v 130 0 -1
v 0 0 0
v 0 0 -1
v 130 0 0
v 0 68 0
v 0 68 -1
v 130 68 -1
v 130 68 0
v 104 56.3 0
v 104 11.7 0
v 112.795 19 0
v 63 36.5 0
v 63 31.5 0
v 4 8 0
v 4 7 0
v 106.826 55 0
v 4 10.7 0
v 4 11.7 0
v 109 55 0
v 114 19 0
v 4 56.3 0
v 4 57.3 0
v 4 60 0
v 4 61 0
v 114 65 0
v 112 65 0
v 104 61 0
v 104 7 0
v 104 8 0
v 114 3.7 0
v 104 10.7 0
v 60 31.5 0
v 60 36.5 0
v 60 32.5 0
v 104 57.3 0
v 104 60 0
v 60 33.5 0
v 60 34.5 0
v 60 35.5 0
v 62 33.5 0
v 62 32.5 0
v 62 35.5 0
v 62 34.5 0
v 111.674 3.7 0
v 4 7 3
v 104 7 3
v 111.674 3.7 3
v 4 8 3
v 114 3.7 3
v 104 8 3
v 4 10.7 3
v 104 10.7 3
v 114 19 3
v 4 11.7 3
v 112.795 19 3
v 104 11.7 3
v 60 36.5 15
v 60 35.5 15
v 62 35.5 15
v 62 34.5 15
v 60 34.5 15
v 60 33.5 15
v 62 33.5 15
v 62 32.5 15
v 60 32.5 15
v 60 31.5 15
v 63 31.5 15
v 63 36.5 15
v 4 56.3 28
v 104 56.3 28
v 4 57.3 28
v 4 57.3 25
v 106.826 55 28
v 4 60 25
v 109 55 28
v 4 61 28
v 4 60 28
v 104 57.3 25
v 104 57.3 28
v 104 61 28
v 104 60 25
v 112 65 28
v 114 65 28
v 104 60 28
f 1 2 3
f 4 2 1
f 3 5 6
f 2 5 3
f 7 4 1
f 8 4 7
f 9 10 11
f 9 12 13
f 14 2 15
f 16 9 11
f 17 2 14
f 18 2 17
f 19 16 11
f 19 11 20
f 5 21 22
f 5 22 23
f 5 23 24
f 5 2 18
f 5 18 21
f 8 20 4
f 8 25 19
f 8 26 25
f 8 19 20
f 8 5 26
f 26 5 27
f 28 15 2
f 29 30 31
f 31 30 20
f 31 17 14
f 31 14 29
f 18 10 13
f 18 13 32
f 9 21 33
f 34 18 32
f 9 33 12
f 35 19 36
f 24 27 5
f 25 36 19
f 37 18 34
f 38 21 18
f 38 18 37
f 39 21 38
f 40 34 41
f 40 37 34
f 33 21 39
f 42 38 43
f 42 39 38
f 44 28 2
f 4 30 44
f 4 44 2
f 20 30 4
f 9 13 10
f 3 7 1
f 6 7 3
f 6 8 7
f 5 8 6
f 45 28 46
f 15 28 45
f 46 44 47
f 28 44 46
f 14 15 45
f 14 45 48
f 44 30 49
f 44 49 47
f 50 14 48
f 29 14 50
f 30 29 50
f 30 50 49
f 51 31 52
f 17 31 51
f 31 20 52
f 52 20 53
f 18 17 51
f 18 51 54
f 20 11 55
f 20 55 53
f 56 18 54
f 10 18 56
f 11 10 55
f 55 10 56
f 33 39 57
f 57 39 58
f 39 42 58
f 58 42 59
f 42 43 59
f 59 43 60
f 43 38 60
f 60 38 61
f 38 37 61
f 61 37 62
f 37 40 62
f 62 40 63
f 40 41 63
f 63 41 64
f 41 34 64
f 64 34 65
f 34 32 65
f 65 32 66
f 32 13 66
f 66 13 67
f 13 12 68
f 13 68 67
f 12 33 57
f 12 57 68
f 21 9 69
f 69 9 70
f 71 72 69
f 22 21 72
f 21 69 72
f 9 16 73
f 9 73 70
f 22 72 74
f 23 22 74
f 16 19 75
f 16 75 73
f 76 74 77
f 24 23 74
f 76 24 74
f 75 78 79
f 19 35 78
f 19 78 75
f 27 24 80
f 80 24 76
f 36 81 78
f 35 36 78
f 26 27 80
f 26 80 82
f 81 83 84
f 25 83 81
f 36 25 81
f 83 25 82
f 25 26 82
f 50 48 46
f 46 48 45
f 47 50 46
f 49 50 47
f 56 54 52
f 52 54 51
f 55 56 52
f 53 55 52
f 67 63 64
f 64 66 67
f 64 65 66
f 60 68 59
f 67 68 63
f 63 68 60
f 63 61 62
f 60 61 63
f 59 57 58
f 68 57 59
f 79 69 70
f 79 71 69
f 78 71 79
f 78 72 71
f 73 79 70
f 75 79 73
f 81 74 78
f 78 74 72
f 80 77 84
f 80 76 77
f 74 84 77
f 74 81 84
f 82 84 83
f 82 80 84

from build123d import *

# Parameters (mm, degrees)
SKETCH_W     = 130
SKETCH_H     = 68
PAD_DEPTH    = 1
SKETCH001_W  = 100
SKETCH001_H  = 1
PAD001_DEPTH = 28
SKETCH002_W  = 100
SKETCH002_H  = 1
PAD002_DEPTH = 28
PAD003_DEPTH = 28
SKETCH004_W  = 100
SKETCH004_H  = 2.7
PAD004_DEPTH = 25
SKETCH005_W  = 100
SKETCH005_H  = 1
PAD005_DEPTH = 3
SKETCH006_W  = 100
SKETCH006_H  = 1
PAD006_DEPTH = 3
PAD007_DEPTH = 3
PAD008_DEPTH = 15


with BuildPart() as part:
    # Sketch → Pad (new body)
    with BuildSketch(Plane.XY):
        with Locations((65, 34)):
            Rectangle(SKETCH_W, SKETCH_H)
    extrude(amount=-PAD_DEPTH)

    # Sketch001 → Pad001 (join)
    with BuildSketch(Plane.XY):
        with Locations((54, 56.8)):
            Rectangle(SKETCH001_W, SKETCH001_H)
    extrude(amount=PAD001_DEPTH)

    # Sketch002 → Pad002 (join)
    with BuildSketch(Plane.XY):
        with Locations((54, 60.5)):
            Rectangle(SKETCH002_W, SKETCH002_H)
    extrude(amount=PAD002_DEPTH)

    # Sketch003 → Pad003 (join)
    with BuildSketch(Plane.XY):
        Polygon((104, 61), (112, 65), (114, 65), (104, 60), align=None)
        Polygon((104, 57.3), (109, 55), (106.826087, 55), (104, 56.3), align=None)
    extrude(amount=PAD003_DEPTH)

    # Sketch004 → Pad004 (join)
    with BuildSketch(Plane.XY):
        with Locations((54, 58.65)):
            Rectangle(SKETCH004_W, SKETCH004_H)
    extrude(amount=PAD004_DEPTH)

    # Sketch005 → Pad005 (join)
    with BuildSketch(Plane.XY):
        with Locations((54, 7.5)):
            Rectangle(SKETCH005_W, SKETCH005_H)
    extrude(amount=PAD005_DEPTH)

    # Sketch006 → Pad006 (join)
    with BuildSketch(Plane.XY):
        with Locations((54, 11.2)):
            Rectangle(SKETCH006_W, SKETCH006_H)
    extrude(amount=PAD006_DEPTH)

    # Sketch007 → Pad007 (join)
    with BuildSketch(Plane.XY):
        Polygon((104, 10.7), (114, 19), (112.795181, 19), (104, 11.7), align=None)
        Polygon((104, 8), (114, 3.7), (111.674419, 3.7), (104, 7), align=None)
    extrude(amount=PAD007_DEPTH)

    # Sketch008 → Pad008 (join)
    with BuildSketch(Plane.XY):
        Polygon((60, 36.5), (63, 36.5), (63, 31.5), (60, 31.5), (60, 32.5), (62, 32.5), (62, 33.5), (60, 33.5), (60, 34.5), (62, 34.5), (62, 35.5), (60, 35.5), align=None)
    extrude(amount=PAD008_DEPTH)


solid = part.part
